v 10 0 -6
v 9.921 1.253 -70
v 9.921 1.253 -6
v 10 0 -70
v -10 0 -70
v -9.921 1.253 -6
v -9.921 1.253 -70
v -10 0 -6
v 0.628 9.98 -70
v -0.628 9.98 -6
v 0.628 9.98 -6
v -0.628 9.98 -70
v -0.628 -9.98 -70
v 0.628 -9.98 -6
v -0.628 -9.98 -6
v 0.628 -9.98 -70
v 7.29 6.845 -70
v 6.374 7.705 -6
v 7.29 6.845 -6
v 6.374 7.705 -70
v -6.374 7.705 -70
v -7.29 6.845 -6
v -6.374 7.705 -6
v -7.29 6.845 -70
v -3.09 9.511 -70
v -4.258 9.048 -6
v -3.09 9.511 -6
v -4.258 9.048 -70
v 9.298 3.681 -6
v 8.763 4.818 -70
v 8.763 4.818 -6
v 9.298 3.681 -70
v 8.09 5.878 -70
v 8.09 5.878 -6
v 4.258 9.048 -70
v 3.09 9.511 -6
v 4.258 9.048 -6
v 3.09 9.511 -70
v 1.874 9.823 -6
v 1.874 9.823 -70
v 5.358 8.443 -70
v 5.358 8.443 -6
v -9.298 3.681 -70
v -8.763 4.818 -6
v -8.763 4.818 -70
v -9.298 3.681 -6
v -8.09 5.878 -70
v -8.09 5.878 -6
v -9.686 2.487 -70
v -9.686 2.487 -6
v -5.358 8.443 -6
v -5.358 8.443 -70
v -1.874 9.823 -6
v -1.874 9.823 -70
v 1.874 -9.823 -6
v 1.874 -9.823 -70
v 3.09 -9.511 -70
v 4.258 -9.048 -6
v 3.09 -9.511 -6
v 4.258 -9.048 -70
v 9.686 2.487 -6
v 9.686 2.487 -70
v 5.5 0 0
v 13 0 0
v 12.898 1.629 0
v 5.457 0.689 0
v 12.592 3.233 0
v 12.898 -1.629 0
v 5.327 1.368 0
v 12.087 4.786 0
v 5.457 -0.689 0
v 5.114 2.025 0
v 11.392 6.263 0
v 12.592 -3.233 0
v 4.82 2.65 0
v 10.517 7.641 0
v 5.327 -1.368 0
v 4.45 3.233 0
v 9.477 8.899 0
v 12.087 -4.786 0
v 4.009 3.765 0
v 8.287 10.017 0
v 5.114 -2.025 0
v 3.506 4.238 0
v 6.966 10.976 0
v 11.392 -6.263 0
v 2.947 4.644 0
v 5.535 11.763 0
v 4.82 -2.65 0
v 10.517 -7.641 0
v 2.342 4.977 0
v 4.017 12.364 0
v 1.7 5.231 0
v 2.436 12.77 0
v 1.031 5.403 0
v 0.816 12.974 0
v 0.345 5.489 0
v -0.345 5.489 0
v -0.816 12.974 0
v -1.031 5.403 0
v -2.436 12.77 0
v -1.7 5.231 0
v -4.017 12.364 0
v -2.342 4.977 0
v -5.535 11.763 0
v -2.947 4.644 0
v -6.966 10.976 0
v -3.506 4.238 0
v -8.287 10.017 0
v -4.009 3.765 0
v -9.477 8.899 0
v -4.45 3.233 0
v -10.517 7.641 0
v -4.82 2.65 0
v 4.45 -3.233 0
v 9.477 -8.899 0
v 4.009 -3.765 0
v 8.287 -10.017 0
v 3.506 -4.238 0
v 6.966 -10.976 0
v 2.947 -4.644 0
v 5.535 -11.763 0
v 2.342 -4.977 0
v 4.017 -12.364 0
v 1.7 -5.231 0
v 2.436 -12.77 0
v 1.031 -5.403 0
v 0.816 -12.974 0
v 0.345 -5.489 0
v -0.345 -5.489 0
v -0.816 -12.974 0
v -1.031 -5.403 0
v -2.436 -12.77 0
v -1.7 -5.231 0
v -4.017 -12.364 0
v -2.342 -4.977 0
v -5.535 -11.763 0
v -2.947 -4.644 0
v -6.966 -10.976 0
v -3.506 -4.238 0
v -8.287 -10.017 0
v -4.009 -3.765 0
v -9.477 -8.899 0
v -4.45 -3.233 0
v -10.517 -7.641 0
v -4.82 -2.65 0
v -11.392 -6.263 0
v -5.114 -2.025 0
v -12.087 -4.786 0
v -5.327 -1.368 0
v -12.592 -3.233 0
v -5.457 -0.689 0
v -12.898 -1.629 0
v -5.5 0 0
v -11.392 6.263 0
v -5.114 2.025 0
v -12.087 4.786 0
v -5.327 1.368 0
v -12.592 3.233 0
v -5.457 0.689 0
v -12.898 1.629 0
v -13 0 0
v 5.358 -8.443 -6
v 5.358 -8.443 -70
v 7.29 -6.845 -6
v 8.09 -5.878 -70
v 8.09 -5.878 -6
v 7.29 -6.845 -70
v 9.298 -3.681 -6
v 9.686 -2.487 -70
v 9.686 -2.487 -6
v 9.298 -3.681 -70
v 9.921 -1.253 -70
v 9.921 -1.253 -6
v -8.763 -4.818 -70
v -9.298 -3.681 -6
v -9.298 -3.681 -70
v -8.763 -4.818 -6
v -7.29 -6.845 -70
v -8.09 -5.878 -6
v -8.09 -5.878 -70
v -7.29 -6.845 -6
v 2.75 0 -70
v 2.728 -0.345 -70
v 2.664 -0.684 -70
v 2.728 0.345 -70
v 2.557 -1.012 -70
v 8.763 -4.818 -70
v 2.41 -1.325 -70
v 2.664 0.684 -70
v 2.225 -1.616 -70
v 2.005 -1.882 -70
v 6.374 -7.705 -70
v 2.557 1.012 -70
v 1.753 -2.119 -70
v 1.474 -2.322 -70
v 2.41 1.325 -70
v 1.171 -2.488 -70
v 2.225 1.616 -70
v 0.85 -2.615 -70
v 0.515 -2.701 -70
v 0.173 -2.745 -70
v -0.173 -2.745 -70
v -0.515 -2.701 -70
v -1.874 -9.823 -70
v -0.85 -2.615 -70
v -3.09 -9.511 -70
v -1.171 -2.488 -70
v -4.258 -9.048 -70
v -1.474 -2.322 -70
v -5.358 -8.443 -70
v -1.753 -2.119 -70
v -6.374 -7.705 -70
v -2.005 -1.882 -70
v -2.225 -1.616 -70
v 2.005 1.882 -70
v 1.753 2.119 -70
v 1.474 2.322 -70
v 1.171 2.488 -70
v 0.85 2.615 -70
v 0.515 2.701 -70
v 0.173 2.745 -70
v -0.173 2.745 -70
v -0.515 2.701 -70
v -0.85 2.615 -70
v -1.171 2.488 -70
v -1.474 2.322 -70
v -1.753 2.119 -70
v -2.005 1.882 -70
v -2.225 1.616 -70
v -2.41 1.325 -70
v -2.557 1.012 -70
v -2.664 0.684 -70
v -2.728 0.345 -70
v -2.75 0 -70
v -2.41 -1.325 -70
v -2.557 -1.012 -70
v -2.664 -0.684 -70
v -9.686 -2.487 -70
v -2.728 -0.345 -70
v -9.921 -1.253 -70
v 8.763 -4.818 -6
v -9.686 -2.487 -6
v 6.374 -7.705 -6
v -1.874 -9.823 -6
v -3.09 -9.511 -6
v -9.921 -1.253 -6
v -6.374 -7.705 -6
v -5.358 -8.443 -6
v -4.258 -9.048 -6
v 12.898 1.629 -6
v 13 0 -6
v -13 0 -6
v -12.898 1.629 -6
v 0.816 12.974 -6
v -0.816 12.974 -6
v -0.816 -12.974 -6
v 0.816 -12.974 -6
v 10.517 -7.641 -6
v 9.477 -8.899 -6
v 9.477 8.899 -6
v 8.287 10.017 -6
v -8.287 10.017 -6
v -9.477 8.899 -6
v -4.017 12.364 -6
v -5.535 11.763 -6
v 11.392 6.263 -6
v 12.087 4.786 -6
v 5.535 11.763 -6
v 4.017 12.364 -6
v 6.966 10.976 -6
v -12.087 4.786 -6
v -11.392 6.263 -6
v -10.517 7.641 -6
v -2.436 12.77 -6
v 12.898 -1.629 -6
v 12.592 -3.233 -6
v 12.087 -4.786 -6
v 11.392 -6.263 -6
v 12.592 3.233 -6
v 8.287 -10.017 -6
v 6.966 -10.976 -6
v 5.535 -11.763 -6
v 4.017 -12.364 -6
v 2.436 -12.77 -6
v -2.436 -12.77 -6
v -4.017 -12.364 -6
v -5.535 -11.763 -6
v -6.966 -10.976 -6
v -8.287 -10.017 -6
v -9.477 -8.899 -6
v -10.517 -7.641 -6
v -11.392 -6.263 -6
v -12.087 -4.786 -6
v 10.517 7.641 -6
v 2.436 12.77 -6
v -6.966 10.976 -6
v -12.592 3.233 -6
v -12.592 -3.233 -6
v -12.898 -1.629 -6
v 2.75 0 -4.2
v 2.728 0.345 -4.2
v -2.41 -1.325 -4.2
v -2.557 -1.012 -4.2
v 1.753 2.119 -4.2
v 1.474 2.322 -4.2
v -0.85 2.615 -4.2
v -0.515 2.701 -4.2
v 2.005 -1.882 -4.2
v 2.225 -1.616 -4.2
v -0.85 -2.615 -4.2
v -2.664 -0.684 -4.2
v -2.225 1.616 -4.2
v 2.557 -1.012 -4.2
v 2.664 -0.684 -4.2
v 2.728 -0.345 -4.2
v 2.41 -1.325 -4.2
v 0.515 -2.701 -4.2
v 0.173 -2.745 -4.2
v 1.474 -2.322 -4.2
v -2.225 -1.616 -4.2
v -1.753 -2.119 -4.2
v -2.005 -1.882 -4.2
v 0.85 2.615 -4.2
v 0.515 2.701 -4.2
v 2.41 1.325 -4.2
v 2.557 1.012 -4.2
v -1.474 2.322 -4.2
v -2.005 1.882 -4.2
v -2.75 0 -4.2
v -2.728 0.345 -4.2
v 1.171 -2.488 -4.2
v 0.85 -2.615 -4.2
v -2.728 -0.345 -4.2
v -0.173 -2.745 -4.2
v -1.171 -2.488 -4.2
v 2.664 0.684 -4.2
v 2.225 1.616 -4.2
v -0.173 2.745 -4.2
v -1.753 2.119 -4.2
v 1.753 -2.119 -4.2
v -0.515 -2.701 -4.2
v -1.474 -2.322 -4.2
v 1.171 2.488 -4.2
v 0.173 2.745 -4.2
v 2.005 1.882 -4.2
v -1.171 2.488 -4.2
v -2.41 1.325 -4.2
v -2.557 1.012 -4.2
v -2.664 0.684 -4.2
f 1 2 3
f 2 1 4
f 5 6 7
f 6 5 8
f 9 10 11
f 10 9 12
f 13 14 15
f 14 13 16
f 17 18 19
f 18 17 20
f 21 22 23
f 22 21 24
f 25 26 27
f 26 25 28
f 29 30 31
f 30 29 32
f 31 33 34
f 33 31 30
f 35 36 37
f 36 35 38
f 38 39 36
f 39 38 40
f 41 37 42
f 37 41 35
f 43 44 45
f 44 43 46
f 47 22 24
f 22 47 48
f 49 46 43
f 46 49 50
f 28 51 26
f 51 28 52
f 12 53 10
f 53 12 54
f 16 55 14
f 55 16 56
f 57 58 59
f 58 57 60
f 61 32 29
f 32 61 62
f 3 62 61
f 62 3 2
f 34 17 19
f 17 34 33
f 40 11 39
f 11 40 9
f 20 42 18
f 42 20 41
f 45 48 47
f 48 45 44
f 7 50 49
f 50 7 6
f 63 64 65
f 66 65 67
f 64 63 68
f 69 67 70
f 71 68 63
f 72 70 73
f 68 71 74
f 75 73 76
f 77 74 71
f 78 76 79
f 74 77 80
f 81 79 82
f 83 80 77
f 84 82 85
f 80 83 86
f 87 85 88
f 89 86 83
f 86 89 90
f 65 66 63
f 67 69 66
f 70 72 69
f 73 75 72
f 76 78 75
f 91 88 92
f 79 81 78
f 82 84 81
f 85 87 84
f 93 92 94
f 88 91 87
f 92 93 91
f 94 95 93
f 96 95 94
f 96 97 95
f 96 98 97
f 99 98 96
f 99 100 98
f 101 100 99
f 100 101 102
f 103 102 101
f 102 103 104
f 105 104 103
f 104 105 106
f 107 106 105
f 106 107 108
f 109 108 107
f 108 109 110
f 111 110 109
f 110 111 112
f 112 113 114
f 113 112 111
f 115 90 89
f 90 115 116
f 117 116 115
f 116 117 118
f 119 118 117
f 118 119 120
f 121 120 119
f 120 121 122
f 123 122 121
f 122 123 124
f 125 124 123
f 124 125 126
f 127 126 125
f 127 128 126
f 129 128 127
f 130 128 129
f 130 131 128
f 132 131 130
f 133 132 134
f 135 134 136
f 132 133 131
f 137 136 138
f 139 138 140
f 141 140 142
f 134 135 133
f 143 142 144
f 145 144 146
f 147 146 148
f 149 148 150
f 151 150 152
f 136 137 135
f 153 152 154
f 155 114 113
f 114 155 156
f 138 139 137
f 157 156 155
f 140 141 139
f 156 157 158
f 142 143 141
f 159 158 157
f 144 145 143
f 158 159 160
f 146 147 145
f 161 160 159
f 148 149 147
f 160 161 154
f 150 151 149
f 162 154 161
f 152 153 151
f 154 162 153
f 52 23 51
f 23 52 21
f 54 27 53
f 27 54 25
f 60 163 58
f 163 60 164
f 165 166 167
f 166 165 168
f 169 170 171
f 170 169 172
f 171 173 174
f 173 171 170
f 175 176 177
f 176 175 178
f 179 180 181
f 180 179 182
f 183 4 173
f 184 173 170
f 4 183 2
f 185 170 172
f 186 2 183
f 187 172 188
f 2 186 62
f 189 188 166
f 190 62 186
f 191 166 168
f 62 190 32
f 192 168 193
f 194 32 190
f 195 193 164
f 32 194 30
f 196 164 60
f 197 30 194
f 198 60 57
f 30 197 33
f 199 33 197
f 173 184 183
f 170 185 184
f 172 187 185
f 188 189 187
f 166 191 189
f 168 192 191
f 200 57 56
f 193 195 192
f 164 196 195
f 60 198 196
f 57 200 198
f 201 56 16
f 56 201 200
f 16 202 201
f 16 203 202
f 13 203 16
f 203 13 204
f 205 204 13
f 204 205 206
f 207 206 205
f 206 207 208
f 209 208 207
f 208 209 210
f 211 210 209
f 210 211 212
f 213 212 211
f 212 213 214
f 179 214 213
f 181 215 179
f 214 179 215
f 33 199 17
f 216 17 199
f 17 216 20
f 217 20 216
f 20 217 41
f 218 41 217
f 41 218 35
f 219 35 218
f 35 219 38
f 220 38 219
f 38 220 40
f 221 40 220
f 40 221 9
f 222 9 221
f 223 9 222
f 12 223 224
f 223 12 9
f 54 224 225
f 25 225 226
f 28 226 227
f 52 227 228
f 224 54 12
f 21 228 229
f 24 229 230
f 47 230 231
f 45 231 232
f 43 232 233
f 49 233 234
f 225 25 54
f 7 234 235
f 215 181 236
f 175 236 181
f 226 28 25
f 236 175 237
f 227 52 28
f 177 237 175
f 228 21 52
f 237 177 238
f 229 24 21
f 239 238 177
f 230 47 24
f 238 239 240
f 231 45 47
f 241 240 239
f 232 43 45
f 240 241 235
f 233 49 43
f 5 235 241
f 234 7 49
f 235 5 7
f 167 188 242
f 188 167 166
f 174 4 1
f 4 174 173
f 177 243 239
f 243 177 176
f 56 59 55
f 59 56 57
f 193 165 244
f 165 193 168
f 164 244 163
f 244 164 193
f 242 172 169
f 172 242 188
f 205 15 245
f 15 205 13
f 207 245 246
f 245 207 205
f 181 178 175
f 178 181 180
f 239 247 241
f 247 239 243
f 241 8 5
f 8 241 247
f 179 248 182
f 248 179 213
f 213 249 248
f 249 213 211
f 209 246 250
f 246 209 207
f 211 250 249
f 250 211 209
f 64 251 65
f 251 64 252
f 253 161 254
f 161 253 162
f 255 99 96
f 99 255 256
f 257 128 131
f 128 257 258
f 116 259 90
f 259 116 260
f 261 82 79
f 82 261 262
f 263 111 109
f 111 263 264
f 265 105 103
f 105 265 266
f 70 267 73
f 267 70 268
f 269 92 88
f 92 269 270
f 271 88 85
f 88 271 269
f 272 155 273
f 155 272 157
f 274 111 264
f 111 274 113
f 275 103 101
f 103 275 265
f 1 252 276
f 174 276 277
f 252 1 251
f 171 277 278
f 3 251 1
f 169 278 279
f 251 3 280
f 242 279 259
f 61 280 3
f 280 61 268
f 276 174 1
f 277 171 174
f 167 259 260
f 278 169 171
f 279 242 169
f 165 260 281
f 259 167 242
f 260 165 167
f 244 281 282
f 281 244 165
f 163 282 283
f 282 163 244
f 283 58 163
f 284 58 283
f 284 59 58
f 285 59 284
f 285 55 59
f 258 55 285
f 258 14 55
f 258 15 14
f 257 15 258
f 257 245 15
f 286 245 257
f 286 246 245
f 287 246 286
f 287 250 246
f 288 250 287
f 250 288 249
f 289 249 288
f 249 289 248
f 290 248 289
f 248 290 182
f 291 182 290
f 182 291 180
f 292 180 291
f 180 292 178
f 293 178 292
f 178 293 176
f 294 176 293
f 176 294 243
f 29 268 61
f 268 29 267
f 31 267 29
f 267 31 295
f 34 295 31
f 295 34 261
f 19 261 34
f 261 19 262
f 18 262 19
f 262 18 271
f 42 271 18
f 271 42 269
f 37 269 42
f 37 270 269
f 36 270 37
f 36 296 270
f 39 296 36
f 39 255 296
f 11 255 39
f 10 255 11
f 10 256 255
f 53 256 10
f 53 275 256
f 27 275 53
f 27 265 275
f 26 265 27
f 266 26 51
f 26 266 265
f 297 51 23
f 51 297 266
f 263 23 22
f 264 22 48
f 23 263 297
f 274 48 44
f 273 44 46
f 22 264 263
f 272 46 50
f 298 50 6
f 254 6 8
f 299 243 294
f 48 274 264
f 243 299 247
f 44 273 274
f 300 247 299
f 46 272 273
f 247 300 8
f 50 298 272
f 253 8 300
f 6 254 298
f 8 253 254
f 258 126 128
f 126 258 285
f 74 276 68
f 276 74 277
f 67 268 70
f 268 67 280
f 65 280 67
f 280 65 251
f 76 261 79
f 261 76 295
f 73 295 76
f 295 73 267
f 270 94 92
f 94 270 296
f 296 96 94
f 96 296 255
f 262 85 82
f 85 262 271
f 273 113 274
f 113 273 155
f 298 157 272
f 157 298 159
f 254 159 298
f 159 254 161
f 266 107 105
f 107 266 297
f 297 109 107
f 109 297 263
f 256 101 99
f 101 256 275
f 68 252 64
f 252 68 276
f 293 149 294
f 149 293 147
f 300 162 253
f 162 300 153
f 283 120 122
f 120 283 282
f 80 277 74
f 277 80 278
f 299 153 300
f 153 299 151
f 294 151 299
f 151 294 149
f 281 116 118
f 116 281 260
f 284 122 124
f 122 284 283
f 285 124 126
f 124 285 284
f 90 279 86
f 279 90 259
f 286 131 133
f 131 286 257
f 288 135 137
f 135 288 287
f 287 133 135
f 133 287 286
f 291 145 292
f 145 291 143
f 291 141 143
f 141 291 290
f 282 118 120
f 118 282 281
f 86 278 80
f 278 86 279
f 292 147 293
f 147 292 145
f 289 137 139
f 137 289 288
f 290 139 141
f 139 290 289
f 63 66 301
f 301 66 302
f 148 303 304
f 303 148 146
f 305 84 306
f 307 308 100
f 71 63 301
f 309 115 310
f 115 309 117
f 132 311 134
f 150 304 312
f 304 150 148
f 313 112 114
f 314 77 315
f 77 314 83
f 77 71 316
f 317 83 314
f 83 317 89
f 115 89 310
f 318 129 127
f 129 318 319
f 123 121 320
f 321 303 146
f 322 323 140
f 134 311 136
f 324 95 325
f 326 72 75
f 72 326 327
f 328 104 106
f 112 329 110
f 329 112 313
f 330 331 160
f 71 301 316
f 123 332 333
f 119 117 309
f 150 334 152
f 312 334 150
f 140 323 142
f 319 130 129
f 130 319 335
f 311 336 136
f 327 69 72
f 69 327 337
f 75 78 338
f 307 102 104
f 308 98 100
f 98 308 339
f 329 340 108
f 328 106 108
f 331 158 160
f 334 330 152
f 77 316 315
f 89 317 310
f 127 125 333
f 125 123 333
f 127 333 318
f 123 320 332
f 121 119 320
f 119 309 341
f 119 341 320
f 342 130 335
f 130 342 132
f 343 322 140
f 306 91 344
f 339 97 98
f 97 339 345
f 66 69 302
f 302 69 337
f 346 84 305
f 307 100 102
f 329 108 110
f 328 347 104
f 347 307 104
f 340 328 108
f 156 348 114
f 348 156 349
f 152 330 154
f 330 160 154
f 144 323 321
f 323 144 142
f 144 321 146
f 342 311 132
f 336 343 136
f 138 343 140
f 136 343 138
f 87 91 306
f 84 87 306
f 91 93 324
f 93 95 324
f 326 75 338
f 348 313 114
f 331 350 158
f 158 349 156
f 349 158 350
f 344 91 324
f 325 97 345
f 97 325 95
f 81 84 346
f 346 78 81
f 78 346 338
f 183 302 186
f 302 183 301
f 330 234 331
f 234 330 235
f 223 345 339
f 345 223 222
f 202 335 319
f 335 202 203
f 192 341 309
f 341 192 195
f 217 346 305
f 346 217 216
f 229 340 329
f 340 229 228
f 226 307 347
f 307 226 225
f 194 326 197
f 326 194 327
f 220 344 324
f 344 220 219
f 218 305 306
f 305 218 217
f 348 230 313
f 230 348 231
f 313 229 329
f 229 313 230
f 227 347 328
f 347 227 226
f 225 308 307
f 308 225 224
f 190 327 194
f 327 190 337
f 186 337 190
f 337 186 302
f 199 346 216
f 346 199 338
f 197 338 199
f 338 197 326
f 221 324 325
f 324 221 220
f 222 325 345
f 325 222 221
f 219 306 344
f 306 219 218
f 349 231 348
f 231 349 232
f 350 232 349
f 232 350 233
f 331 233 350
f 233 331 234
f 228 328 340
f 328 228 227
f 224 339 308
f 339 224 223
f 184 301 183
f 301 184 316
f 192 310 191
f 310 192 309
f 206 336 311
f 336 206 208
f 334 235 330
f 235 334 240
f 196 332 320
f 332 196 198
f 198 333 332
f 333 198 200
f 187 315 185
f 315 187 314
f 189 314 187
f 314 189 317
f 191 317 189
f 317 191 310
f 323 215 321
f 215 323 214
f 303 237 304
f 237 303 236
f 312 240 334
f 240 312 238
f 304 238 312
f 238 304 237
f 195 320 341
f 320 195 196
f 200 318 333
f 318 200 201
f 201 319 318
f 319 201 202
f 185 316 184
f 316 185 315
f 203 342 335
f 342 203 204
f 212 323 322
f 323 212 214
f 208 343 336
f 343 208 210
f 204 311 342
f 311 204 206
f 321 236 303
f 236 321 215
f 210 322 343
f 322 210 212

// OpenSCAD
$fn = 50;


difference() {
	union() {
		translate(v = [0, 0, -70.0000000000]) {
			cylinder(h = 70, r = 10.0000000000);
		}
		translate(v = [0, 0, -6.0000000000]) {
			cylinder(h = 6, r = 13.0000000000);
		}
	}
	union() {
		translate(v = [0, 0, 0]) {
			rotate(a = [0, 0, 0]) {
				difference() {
					union() {
						#translate(v = [0, 0, -70.0000000000]) {
							cylinder(h = 70, r = 2.2500000000);
						}
						#translate(v = [0, 0, -4.2000000000]) {
							cylinder(h = 4.2000000000, r = 10.0000000000, r1 = 2.7500000000, r2 = 5.5000000000);
						}
						#translate(v = [0, 0, -70.0000000000]) {
							cylinder(h = 70, r = 2.7500000000);
						}
						#translate(v = [0, 0, -70.0000000000]) {
							cylinder(h = 70, r = 2.2500000000);
						}
					}
					union();
				}
			}
		}
	}
}
